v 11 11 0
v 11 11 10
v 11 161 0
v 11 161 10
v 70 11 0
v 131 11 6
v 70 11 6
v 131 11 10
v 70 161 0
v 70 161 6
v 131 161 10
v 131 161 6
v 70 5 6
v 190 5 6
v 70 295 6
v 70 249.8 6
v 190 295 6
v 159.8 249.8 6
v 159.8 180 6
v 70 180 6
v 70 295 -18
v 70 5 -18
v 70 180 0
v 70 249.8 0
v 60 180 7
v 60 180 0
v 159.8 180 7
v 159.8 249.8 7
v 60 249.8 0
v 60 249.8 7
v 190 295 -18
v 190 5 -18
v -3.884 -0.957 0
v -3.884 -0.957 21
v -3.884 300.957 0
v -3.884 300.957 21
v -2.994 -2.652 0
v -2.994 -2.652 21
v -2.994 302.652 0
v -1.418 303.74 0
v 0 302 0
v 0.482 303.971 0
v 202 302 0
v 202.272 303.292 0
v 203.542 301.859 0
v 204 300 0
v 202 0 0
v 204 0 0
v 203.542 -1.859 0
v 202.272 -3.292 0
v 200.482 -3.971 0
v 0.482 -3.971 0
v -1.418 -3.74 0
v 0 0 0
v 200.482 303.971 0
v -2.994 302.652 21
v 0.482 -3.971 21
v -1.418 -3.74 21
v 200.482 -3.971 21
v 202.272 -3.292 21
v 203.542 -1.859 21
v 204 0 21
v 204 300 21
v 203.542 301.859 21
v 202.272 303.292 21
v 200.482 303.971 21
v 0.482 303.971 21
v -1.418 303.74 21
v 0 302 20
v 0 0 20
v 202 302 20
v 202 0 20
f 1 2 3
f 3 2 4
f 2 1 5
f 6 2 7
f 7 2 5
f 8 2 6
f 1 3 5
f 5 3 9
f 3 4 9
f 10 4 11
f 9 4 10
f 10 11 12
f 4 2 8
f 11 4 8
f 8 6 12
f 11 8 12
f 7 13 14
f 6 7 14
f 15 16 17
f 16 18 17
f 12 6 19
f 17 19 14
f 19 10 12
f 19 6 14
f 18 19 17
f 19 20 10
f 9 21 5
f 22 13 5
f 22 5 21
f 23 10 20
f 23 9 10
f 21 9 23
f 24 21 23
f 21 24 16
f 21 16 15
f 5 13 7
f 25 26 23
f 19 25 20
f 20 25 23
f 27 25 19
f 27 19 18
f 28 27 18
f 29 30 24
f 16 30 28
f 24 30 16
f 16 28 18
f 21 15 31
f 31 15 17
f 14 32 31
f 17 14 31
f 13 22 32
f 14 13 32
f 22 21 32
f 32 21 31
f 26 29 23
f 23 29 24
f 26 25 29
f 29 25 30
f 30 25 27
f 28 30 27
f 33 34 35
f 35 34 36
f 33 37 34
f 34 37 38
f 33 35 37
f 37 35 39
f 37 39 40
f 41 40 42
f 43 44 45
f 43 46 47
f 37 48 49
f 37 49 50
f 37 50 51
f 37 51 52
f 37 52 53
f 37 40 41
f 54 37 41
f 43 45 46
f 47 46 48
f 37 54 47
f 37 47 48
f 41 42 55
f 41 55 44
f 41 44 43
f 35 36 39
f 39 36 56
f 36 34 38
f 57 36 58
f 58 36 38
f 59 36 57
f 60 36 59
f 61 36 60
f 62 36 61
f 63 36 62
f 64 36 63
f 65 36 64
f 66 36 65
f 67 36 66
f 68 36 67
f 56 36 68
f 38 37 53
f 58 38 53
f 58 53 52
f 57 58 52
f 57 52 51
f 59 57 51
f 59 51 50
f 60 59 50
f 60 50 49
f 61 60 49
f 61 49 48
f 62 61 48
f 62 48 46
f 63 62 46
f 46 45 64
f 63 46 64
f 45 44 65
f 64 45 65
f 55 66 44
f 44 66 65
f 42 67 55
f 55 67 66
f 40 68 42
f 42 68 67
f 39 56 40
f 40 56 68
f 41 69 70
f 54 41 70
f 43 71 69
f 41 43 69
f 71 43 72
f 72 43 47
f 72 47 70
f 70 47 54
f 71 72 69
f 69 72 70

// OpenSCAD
module board()
{
    translate([11, 11, 0]){
        cube([120, 150, 10]);
    }
}

module screen()
{
    translate([00,0,0]){
        rotate([0,90,0]){
            cube([330, 40, 2]);
        }
    }
}


module case()
{
    difference(){
        minkowski()
        {
            cube([200,300,20]);
            cylinder(r=4,h=1);
        }
        translate([0,0,0]){
            cube([202,302,20]);
        }
    }
}

module ssd()
{
    translate([60, 180, 0]) {
        cube([99.8, 69.8, 7]);
    }
}

module keyboard()
{
    translate([70, 5, -18]) {
        cube([120, 290, 24]);
    }
}

board();
//screen();
case();
ssd();
keyboard();
